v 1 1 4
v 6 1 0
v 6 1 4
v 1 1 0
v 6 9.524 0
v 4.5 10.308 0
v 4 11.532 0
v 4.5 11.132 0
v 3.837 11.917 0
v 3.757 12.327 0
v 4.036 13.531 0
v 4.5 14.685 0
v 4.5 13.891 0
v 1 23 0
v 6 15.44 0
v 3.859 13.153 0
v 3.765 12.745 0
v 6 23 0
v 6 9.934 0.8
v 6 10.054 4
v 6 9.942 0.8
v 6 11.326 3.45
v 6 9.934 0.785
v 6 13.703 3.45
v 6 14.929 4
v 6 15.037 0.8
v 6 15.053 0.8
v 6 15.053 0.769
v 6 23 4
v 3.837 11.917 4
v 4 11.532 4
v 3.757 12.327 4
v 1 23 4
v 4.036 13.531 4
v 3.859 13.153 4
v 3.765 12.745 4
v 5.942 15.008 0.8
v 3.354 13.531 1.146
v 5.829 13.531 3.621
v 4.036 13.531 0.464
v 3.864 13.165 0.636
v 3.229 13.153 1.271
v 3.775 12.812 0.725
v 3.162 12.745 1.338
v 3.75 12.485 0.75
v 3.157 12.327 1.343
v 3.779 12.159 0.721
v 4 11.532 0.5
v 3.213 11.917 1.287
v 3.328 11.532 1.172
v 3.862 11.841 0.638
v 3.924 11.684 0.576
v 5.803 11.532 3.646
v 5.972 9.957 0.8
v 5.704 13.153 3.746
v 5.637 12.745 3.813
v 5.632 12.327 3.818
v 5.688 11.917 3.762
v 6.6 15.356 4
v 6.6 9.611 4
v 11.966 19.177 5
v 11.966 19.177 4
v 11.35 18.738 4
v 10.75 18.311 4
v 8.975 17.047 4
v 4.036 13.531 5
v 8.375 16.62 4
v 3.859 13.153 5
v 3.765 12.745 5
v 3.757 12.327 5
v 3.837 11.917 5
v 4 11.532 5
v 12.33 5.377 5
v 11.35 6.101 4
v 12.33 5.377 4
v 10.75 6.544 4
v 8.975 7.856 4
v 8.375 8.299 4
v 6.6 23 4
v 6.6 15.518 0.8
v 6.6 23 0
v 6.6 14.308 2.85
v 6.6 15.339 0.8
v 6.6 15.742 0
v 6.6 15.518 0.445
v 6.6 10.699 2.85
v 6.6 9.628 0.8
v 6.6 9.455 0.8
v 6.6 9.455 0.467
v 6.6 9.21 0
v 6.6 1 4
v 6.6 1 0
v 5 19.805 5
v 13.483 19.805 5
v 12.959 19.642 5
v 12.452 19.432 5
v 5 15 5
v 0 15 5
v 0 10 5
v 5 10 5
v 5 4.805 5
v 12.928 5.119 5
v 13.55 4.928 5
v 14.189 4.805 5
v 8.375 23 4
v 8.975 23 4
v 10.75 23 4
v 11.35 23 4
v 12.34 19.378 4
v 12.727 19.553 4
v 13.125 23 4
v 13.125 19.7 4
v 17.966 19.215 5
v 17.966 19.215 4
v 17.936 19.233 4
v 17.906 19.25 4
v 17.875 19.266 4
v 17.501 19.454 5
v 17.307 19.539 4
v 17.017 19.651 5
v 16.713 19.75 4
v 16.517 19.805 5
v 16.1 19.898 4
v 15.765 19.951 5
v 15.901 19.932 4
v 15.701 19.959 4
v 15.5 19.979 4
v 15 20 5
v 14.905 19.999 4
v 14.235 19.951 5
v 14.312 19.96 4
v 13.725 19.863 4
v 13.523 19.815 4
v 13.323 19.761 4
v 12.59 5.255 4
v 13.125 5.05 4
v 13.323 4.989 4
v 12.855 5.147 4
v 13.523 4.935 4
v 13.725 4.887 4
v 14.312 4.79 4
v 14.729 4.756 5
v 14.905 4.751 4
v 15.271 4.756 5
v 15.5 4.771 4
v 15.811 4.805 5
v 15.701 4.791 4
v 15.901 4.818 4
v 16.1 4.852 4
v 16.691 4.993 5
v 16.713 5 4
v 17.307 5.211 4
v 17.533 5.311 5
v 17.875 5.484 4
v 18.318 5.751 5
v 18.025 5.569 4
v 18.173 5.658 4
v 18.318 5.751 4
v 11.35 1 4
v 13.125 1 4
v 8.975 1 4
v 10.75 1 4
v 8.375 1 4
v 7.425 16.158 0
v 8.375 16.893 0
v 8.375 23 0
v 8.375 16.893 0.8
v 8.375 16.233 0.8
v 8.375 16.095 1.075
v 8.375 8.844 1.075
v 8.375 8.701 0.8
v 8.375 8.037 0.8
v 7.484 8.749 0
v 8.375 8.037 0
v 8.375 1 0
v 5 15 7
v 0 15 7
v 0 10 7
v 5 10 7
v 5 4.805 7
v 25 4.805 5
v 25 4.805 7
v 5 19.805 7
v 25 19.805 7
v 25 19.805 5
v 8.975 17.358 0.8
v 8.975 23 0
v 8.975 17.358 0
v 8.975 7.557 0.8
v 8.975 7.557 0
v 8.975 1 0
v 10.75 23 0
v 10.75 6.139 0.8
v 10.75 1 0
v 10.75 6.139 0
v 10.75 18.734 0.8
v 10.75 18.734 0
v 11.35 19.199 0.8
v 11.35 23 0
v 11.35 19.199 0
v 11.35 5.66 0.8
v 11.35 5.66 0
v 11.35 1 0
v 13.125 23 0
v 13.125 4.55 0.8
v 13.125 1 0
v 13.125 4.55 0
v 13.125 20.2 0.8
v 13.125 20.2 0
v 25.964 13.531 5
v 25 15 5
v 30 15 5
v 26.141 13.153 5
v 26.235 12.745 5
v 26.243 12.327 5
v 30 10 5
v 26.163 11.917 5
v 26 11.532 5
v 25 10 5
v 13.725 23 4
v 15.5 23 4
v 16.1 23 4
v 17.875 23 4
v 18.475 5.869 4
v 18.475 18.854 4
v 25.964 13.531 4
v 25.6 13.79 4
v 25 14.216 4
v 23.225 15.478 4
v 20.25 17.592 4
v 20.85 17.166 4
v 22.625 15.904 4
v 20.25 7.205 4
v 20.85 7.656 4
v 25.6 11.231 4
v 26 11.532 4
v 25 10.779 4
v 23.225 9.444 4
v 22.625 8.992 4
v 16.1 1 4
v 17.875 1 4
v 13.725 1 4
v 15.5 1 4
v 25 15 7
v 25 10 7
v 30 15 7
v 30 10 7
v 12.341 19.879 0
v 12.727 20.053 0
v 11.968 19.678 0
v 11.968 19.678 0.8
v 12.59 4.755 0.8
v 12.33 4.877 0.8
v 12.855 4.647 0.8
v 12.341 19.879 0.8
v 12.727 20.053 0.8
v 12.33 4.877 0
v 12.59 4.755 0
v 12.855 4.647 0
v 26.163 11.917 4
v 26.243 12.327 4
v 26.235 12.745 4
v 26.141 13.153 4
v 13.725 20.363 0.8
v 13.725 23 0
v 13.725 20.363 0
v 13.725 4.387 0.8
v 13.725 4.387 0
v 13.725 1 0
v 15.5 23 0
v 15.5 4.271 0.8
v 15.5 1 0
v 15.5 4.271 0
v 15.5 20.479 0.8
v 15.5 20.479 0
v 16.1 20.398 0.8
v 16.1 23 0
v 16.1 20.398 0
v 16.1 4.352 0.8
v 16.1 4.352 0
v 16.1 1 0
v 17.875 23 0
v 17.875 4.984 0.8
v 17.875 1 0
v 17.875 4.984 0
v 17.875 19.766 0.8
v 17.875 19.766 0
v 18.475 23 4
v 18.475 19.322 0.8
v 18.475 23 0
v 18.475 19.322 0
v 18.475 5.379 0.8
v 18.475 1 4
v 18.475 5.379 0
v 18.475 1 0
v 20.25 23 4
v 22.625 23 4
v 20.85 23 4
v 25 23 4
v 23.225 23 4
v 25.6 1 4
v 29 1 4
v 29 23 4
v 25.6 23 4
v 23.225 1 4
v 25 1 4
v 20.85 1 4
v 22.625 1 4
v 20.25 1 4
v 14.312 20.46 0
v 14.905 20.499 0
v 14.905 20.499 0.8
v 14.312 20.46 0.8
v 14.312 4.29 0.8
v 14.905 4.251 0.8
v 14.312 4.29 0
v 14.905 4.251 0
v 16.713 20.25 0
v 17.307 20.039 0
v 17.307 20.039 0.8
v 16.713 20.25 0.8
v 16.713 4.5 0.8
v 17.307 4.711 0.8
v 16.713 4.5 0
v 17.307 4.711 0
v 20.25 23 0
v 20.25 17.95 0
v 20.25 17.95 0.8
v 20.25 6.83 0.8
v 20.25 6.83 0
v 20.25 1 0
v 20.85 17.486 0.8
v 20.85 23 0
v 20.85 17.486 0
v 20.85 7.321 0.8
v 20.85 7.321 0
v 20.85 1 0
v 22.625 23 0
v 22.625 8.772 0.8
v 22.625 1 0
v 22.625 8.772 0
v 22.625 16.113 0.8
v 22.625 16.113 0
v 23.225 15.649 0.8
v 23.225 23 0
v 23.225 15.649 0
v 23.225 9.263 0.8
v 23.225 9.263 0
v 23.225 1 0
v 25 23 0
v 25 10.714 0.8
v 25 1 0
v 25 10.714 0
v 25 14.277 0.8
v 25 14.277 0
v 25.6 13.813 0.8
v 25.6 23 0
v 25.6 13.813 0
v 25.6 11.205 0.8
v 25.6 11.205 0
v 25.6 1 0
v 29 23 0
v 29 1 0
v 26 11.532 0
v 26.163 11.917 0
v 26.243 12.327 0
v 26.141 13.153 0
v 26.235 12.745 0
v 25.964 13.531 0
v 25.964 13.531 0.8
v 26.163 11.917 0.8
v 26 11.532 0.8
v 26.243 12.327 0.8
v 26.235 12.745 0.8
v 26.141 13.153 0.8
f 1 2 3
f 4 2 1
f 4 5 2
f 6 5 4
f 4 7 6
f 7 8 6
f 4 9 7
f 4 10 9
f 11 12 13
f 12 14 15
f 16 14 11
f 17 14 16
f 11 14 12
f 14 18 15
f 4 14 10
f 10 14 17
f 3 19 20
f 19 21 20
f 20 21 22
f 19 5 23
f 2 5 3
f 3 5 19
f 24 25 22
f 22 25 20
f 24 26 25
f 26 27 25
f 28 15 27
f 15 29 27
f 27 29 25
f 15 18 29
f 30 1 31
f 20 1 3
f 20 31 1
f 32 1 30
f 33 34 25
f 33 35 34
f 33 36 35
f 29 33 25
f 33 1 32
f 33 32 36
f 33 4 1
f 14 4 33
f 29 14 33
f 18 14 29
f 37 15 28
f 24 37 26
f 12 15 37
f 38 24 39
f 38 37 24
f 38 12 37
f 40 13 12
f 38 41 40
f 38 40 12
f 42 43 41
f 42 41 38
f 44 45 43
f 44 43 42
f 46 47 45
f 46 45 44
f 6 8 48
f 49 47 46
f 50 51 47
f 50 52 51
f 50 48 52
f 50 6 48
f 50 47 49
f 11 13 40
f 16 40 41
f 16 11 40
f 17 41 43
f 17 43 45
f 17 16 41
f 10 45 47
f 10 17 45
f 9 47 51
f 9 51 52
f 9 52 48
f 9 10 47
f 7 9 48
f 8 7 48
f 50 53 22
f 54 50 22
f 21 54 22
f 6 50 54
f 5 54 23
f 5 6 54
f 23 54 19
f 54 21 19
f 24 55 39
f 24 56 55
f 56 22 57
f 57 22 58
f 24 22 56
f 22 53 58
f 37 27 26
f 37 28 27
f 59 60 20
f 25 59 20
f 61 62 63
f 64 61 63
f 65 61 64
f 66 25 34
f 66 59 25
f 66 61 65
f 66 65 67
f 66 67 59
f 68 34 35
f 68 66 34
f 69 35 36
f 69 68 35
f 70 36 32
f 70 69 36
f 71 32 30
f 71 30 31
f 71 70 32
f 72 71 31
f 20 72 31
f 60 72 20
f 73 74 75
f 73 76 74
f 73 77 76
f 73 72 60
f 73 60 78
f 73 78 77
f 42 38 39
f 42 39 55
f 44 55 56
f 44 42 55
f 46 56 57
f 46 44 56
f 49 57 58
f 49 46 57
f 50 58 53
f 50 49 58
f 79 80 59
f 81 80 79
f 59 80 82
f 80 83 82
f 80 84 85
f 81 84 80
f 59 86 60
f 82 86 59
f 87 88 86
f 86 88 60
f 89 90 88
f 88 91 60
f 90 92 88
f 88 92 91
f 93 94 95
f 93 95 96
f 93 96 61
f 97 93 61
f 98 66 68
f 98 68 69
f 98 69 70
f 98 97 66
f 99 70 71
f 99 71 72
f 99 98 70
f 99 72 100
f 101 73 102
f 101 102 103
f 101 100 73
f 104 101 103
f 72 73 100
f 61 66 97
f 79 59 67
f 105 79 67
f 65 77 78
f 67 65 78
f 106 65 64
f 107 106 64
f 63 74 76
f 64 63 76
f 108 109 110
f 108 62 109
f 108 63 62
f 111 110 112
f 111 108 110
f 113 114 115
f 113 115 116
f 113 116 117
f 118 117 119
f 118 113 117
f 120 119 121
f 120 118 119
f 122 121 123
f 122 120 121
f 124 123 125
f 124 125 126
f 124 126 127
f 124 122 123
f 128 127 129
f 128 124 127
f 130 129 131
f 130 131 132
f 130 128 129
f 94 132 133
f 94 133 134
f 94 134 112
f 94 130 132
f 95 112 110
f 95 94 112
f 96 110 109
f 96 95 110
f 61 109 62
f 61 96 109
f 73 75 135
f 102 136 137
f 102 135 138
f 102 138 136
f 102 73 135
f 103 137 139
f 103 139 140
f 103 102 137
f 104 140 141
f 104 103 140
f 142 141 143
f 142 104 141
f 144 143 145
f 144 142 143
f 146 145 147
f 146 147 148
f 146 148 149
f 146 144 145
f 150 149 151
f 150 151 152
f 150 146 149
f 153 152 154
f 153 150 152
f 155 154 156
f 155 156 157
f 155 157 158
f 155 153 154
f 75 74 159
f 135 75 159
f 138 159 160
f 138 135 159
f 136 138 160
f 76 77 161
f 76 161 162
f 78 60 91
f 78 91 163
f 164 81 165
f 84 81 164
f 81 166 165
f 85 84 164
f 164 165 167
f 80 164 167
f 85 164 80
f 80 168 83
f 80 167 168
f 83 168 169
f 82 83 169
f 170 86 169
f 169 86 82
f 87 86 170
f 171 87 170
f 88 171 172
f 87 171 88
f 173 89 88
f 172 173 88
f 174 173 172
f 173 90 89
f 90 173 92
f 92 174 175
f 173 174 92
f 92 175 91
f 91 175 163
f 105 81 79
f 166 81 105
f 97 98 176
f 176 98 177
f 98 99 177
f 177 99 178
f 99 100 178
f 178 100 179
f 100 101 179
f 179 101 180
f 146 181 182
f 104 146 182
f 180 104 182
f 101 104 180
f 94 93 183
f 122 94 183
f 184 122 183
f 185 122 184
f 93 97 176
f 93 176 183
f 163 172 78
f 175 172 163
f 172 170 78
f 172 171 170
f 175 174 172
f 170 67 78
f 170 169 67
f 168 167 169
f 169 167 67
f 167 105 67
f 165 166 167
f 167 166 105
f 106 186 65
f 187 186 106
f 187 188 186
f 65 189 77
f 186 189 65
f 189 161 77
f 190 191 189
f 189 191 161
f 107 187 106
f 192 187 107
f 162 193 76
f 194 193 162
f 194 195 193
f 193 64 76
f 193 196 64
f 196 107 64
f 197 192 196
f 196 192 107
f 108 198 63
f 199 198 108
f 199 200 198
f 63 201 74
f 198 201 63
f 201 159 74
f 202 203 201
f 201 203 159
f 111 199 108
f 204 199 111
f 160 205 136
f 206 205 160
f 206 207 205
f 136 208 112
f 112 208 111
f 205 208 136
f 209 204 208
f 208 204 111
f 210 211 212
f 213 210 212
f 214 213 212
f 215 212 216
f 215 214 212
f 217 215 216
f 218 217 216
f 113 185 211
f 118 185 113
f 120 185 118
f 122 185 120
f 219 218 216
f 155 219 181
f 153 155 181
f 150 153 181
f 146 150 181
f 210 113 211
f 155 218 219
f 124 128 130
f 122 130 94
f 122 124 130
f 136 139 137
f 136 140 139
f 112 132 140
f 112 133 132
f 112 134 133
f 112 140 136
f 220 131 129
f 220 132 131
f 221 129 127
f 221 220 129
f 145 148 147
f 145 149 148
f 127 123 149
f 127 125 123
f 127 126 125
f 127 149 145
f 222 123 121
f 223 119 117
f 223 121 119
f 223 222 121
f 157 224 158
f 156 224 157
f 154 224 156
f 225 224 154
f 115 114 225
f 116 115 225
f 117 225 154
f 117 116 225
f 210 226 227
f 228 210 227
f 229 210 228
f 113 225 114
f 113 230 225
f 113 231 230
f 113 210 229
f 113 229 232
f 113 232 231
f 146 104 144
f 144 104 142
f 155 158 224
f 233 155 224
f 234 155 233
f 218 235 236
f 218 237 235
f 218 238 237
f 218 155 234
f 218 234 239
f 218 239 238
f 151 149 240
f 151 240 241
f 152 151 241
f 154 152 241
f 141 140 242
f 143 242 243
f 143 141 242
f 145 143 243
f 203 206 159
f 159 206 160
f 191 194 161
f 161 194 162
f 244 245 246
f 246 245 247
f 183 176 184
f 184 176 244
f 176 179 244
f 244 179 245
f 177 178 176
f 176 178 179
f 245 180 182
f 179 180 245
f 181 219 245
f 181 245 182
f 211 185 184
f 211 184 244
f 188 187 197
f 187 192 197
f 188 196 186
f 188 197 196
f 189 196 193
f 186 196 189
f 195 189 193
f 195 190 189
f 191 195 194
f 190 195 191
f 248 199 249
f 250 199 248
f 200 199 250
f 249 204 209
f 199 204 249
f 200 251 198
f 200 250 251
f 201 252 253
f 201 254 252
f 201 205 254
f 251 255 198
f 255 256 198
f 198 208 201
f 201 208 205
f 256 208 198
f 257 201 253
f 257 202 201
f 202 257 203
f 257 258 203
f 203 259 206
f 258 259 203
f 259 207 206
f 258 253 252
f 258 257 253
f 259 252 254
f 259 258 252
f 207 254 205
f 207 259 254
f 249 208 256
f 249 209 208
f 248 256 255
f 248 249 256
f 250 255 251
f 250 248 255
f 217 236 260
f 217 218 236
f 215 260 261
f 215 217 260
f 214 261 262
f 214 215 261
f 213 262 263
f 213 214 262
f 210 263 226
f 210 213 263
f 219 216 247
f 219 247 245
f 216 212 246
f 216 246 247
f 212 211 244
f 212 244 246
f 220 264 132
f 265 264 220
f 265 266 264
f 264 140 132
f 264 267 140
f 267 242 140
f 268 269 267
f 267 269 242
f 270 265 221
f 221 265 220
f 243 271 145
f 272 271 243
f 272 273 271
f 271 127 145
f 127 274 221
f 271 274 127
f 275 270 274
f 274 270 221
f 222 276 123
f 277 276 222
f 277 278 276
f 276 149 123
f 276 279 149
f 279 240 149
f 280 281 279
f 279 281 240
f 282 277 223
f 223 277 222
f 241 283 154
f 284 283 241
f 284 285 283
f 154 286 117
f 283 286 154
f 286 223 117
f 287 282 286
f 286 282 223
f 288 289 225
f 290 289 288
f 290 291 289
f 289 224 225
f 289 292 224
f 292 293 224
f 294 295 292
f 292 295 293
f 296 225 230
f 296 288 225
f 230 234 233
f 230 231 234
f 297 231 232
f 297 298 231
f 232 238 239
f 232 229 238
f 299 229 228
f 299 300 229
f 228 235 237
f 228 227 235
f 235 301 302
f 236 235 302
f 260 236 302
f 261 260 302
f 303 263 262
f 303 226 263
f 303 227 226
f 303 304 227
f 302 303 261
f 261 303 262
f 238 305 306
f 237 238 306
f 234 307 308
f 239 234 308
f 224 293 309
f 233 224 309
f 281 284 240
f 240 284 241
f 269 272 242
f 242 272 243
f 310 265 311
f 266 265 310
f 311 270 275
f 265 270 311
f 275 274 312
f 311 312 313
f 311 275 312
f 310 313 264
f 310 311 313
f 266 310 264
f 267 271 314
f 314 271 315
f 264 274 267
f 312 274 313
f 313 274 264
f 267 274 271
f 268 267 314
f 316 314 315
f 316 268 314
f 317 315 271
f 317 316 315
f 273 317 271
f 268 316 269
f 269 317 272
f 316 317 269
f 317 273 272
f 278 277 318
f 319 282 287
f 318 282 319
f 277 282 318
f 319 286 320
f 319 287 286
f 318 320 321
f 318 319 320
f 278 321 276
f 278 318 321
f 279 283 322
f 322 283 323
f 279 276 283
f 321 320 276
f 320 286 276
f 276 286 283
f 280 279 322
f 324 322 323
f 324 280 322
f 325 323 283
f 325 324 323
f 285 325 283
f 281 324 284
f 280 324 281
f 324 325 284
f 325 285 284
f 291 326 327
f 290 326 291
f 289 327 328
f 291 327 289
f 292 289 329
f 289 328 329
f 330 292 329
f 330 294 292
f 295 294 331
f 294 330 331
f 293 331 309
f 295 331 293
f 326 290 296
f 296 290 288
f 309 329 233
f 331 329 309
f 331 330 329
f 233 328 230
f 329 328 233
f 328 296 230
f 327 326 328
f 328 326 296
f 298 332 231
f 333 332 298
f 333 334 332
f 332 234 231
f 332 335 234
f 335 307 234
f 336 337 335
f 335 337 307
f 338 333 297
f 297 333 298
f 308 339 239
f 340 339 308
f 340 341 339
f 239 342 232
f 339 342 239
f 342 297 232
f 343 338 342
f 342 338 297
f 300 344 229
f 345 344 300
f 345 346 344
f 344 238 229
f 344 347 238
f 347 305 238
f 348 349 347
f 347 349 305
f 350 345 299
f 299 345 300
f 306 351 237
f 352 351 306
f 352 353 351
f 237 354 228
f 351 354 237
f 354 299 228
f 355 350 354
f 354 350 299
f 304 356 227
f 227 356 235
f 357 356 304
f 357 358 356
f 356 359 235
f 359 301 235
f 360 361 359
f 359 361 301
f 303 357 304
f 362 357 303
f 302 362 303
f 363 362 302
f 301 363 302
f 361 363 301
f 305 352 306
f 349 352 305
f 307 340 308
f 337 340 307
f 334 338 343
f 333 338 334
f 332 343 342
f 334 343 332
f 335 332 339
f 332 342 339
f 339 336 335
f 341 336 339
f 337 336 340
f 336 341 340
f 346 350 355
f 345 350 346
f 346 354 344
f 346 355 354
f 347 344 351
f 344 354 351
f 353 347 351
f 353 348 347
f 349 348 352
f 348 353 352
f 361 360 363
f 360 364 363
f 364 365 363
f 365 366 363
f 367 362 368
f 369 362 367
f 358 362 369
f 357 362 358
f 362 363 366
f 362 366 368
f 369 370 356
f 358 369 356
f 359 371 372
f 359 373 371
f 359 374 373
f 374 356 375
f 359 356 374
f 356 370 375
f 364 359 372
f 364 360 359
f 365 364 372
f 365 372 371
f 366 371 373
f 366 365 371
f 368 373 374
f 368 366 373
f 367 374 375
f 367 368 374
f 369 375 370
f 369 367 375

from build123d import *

# Parameters (mm, degrees)
SKETCH_W             = 28
SKETCH_H             = 22
PAD002_DEPTH         = 5
POCKET001_DEPTH      = 0.8
SKETCH002_W          = 0.6
SKETCH002_H          = 23
POCKET_DEPTH         = 4
LINEARPATTERN_COUNT  = 9
LINEARPATTERN_PITCH  = 2.375
POCKET002_DEPTH      = 3.5
SKETCH006_W          = 28
SKETCH006_H          = 22
POCKET005_DEPTH      = 1
POCKET005_DEPTH_BACK = 1
PAD_DEPTH            = 2


with BuildPart() as part:
    # Sketch → Pad002 (new body)
    with BuildSketch(Plane.XY):
        with Locations((15, 12)):
            Rectangle(SKETCH_W, SKETCH_H)
    extrude(amount=PAD002_DEPTH)

    # Sketch001 → Pocket001 (cut)
    with BuildSketch(Plane.XY):
        with BuildLine():
            ThreePointArc((17.967868, 19.714572), (14.962963, 20.499886), (11.967982, 19.677535))
            Line((11.967982, 19.677535), (4.036475, 13.531422))
            ThreePointArc((4.036475, 13.531422), (3.750333, 12.536475), (4, 11.531754))
            Line((4, 11.531754), (12.33, 4.876817))
            ThreePointArc((12.33, 4.876817), (15.374304, 4.261687), (18.318313, 5.25112))
            Line((18.318313, 5.25112), (26, 11.531754))
            ThreePointArc((26, 11.531754), (26.249667, 12.536475), (25.963525, 13.531422))
            Line((25.963525, 13.531422), (17.967868, 19.714572))
        make_face()
    extrude(amount=POCKET001_DEPTH, mode=Mode.SUBTRACT)

    # Sketch002 → Pocket (cut)
    with BuildSketch(Plane.XY):
        with Locations((6.3, 11.5)):
            Rectangle(SKETCH002_W, SKETCH002_H)
    pocket = extrude(amount=POCKET_DEPTH, mode=Mode.SUBTRACT)

    # LinearPattern: Pocket ×9
    with Locations(*[(i * LINEARPATTERN_PITCH, 0, 0) for i in range(1, LINEARPATTERN_COUNT)]):
        add(pocket, mode=Mode.SUBTRACT)

    # Sketch003 → Pocket002 (cut)
    with BuildSketch(Plane(origin=(0.5, 0, 4), x_dir=(0.707107, 0, -0.707107), z_dir=(0.707107, 0, 0.707107))):
        with BuildLine():
            ThreePointArc((17.966363, 19.215428), (14.961232, 19.999875), (11.966488, 19.17666))
            Line((11.966488, 19.17666), (4.036475, 13.531422))
            ThreePointArc((4.036475, 13.531422), (3.750333, 12.536475), (4, 11.531754))
            Line((4, 11.531754), (12.33, 5.376817))
            ThreePointArc((12.33, 5.376817), (15.374304, 4.761687), (18.318313, 5.75112))
            Line((18.318313, 5.75112), (26, 11.531754))
            ThreePointArc((26, 11.531754), (26.249667, 12.536475), (25.963525, 13.531422))
            Line((25.963525, 13.531422), (17.966363, 19.215428))
        make_face()
    extrude(amount=POCKET002_DEPTH, mode=Mode.SUBTRACT)

    # Sketch006 → Pocket005 (cut, two sides)
    with BuildSketch(Plane.XY.offset(5)) as pocket005_sk:
        with Locations((15, 12)):
            Rectangle(SKETCH006_W, SKETCH006_H)
        with BuildLine():
            ThreePointArc((17.966363, 19.215428), (14.961232, 19.999875), (11.966488, 19.17666))
            Line((11.966488, 19.17666), (4.036475, 13.531422))
            ThreePointArc((4.036475, 13.531422), (3.750333, 12.536475), (4, 11.531754))
            Line((4, 11.531754), (12.33, 5.376817))
            ThreePointArc((12.33, 5.376817), (15.374304, 4.761687), (18.318313, 5.75112))
            Line((18.318313, 5.75112), (26, 11.531754))
            ThreePointArc((26, 11.531754), (26.249667, 12.536475), (25.963525, 13.531422))
            Line((25.963525, 13.531422), (17.966363, 19.215428))
        make_face(mode=Mode.SUBTRACT)
    extrude(amount=-POCKET005_DEPTH, mode=Mode.SUBTRACT)
    extrude(pocket005_sk.sketch, amount=POCKET005_DEPTH_BACK, mode=Mode.SUBTRACT)

    # Sketch004 → Pad (join)
    with BuildSketch(Plane.XY.offset(5)):
        Polygon((5, 19.805), (25, 19.805), (25, 15), (30, 15), (30, 10), (25, 10), (25, 4.805), (5, 4.805), (5, 10), (0, 10), (0, 15), (5, 15), align=None)
    extrude(amount=PAD_DEPTH)


solid = part.part
